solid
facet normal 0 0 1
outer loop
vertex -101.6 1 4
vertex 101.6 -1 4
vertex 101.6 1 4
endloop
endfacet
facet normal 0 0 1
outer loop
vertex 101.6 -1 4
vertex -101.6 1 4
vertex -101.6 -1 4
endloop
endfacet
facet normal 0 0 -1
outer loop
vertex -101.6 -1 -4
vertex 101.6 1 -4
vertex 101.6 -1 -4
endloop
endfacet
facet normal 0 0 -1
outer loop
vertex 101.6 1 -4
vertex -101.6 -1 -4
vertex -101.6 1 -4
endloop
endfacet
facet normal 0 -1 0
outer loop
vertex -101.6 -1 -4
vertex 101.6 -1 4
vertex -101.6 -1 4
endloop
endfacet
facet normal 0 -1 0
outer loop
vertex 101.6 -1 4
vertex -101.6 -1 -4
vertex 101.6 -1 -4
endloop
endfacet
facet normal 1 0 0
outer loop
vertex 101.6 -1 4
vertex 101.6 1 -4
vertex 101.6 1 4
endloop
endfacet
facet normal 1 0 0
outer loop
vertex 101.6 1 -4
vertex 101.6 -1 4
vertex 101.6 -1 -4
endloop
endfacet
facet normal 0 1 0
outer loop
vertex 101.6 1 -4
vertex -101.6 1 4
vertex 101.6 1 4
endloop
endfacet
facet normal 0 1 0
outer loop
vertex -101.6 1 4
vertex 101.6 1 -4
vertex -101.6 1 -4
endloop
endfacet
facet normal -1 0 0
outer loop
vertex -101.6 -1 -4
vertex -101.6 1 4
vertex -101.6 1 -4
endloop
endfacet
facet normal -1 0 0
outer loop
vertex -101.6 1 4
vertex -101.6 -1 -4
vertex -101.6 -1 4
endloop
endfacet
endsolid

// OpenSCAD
// DND-76 — P4 single-actuator banked reset bar.
//
// EVIDENCE CLASS: CAD geometry. NOT a print, NOT a measurement ([DND-27]).
//
// The reset bar rides on the underside of the COMMON platen (an existing moving
// part). A Z-offset engagement dog contacts only the currently-indexed bank's
// four comb tails at the down limit; a printed one-way pawl clutch on each comb
// free-wheels on the up-stroke so the reset cannot corrupt the just-written
// mask. NO extra motor and NO bought clutch are added.
//
// Rendered with `-D part="<key>"` by ../tools/render_primitives_cad.py.
// Units: mm. Target process: Bambu X1C, PLA, 0.4 mm nozzle, 0.20 mm layers.

RESET_BAR_T = 2.0;                 // printed reset bar thickness (Z)
RESET_ENGAGE = 1.20;               // engagement dog depth
CLUTCH_T = 0.90;                   // one-way pawl clutch leaf: 2 lines
CLUTCH_W = 0.70;
CLUTCH_L = 4.0;
SEG_BANKS = 4;                     // drawn segment for the bed (203.2 mm)
BANK_SPAN = 10 * 5.08;             // 50.8 mm per bank

module reset_bar() {
    cube([SEG_BANKS * BANK_SPAN, RESET_BAR_T, 8.0], center = true);
}

module engagement_dog() {
    translate([0, 0, -RESET_BAR_T / 2 - RESET_ENGAGE / 2])
        cube([10.0, RESET_ENGAGE, RESET_ENGAGE], center = true);
}

module clutch() {
    // A printed pawl leaf: blocks on the down-stroke, free-wheels on the up.
    cube([CLUTCH_T, CLUTCH_W, CLUTCH_L]);
}

part = "bar";
if (part == "bar") reset_bar();
else if (part == "dog") engagement_dog();
else if (part == "clutch") clutch();
else echo("unknown part");
